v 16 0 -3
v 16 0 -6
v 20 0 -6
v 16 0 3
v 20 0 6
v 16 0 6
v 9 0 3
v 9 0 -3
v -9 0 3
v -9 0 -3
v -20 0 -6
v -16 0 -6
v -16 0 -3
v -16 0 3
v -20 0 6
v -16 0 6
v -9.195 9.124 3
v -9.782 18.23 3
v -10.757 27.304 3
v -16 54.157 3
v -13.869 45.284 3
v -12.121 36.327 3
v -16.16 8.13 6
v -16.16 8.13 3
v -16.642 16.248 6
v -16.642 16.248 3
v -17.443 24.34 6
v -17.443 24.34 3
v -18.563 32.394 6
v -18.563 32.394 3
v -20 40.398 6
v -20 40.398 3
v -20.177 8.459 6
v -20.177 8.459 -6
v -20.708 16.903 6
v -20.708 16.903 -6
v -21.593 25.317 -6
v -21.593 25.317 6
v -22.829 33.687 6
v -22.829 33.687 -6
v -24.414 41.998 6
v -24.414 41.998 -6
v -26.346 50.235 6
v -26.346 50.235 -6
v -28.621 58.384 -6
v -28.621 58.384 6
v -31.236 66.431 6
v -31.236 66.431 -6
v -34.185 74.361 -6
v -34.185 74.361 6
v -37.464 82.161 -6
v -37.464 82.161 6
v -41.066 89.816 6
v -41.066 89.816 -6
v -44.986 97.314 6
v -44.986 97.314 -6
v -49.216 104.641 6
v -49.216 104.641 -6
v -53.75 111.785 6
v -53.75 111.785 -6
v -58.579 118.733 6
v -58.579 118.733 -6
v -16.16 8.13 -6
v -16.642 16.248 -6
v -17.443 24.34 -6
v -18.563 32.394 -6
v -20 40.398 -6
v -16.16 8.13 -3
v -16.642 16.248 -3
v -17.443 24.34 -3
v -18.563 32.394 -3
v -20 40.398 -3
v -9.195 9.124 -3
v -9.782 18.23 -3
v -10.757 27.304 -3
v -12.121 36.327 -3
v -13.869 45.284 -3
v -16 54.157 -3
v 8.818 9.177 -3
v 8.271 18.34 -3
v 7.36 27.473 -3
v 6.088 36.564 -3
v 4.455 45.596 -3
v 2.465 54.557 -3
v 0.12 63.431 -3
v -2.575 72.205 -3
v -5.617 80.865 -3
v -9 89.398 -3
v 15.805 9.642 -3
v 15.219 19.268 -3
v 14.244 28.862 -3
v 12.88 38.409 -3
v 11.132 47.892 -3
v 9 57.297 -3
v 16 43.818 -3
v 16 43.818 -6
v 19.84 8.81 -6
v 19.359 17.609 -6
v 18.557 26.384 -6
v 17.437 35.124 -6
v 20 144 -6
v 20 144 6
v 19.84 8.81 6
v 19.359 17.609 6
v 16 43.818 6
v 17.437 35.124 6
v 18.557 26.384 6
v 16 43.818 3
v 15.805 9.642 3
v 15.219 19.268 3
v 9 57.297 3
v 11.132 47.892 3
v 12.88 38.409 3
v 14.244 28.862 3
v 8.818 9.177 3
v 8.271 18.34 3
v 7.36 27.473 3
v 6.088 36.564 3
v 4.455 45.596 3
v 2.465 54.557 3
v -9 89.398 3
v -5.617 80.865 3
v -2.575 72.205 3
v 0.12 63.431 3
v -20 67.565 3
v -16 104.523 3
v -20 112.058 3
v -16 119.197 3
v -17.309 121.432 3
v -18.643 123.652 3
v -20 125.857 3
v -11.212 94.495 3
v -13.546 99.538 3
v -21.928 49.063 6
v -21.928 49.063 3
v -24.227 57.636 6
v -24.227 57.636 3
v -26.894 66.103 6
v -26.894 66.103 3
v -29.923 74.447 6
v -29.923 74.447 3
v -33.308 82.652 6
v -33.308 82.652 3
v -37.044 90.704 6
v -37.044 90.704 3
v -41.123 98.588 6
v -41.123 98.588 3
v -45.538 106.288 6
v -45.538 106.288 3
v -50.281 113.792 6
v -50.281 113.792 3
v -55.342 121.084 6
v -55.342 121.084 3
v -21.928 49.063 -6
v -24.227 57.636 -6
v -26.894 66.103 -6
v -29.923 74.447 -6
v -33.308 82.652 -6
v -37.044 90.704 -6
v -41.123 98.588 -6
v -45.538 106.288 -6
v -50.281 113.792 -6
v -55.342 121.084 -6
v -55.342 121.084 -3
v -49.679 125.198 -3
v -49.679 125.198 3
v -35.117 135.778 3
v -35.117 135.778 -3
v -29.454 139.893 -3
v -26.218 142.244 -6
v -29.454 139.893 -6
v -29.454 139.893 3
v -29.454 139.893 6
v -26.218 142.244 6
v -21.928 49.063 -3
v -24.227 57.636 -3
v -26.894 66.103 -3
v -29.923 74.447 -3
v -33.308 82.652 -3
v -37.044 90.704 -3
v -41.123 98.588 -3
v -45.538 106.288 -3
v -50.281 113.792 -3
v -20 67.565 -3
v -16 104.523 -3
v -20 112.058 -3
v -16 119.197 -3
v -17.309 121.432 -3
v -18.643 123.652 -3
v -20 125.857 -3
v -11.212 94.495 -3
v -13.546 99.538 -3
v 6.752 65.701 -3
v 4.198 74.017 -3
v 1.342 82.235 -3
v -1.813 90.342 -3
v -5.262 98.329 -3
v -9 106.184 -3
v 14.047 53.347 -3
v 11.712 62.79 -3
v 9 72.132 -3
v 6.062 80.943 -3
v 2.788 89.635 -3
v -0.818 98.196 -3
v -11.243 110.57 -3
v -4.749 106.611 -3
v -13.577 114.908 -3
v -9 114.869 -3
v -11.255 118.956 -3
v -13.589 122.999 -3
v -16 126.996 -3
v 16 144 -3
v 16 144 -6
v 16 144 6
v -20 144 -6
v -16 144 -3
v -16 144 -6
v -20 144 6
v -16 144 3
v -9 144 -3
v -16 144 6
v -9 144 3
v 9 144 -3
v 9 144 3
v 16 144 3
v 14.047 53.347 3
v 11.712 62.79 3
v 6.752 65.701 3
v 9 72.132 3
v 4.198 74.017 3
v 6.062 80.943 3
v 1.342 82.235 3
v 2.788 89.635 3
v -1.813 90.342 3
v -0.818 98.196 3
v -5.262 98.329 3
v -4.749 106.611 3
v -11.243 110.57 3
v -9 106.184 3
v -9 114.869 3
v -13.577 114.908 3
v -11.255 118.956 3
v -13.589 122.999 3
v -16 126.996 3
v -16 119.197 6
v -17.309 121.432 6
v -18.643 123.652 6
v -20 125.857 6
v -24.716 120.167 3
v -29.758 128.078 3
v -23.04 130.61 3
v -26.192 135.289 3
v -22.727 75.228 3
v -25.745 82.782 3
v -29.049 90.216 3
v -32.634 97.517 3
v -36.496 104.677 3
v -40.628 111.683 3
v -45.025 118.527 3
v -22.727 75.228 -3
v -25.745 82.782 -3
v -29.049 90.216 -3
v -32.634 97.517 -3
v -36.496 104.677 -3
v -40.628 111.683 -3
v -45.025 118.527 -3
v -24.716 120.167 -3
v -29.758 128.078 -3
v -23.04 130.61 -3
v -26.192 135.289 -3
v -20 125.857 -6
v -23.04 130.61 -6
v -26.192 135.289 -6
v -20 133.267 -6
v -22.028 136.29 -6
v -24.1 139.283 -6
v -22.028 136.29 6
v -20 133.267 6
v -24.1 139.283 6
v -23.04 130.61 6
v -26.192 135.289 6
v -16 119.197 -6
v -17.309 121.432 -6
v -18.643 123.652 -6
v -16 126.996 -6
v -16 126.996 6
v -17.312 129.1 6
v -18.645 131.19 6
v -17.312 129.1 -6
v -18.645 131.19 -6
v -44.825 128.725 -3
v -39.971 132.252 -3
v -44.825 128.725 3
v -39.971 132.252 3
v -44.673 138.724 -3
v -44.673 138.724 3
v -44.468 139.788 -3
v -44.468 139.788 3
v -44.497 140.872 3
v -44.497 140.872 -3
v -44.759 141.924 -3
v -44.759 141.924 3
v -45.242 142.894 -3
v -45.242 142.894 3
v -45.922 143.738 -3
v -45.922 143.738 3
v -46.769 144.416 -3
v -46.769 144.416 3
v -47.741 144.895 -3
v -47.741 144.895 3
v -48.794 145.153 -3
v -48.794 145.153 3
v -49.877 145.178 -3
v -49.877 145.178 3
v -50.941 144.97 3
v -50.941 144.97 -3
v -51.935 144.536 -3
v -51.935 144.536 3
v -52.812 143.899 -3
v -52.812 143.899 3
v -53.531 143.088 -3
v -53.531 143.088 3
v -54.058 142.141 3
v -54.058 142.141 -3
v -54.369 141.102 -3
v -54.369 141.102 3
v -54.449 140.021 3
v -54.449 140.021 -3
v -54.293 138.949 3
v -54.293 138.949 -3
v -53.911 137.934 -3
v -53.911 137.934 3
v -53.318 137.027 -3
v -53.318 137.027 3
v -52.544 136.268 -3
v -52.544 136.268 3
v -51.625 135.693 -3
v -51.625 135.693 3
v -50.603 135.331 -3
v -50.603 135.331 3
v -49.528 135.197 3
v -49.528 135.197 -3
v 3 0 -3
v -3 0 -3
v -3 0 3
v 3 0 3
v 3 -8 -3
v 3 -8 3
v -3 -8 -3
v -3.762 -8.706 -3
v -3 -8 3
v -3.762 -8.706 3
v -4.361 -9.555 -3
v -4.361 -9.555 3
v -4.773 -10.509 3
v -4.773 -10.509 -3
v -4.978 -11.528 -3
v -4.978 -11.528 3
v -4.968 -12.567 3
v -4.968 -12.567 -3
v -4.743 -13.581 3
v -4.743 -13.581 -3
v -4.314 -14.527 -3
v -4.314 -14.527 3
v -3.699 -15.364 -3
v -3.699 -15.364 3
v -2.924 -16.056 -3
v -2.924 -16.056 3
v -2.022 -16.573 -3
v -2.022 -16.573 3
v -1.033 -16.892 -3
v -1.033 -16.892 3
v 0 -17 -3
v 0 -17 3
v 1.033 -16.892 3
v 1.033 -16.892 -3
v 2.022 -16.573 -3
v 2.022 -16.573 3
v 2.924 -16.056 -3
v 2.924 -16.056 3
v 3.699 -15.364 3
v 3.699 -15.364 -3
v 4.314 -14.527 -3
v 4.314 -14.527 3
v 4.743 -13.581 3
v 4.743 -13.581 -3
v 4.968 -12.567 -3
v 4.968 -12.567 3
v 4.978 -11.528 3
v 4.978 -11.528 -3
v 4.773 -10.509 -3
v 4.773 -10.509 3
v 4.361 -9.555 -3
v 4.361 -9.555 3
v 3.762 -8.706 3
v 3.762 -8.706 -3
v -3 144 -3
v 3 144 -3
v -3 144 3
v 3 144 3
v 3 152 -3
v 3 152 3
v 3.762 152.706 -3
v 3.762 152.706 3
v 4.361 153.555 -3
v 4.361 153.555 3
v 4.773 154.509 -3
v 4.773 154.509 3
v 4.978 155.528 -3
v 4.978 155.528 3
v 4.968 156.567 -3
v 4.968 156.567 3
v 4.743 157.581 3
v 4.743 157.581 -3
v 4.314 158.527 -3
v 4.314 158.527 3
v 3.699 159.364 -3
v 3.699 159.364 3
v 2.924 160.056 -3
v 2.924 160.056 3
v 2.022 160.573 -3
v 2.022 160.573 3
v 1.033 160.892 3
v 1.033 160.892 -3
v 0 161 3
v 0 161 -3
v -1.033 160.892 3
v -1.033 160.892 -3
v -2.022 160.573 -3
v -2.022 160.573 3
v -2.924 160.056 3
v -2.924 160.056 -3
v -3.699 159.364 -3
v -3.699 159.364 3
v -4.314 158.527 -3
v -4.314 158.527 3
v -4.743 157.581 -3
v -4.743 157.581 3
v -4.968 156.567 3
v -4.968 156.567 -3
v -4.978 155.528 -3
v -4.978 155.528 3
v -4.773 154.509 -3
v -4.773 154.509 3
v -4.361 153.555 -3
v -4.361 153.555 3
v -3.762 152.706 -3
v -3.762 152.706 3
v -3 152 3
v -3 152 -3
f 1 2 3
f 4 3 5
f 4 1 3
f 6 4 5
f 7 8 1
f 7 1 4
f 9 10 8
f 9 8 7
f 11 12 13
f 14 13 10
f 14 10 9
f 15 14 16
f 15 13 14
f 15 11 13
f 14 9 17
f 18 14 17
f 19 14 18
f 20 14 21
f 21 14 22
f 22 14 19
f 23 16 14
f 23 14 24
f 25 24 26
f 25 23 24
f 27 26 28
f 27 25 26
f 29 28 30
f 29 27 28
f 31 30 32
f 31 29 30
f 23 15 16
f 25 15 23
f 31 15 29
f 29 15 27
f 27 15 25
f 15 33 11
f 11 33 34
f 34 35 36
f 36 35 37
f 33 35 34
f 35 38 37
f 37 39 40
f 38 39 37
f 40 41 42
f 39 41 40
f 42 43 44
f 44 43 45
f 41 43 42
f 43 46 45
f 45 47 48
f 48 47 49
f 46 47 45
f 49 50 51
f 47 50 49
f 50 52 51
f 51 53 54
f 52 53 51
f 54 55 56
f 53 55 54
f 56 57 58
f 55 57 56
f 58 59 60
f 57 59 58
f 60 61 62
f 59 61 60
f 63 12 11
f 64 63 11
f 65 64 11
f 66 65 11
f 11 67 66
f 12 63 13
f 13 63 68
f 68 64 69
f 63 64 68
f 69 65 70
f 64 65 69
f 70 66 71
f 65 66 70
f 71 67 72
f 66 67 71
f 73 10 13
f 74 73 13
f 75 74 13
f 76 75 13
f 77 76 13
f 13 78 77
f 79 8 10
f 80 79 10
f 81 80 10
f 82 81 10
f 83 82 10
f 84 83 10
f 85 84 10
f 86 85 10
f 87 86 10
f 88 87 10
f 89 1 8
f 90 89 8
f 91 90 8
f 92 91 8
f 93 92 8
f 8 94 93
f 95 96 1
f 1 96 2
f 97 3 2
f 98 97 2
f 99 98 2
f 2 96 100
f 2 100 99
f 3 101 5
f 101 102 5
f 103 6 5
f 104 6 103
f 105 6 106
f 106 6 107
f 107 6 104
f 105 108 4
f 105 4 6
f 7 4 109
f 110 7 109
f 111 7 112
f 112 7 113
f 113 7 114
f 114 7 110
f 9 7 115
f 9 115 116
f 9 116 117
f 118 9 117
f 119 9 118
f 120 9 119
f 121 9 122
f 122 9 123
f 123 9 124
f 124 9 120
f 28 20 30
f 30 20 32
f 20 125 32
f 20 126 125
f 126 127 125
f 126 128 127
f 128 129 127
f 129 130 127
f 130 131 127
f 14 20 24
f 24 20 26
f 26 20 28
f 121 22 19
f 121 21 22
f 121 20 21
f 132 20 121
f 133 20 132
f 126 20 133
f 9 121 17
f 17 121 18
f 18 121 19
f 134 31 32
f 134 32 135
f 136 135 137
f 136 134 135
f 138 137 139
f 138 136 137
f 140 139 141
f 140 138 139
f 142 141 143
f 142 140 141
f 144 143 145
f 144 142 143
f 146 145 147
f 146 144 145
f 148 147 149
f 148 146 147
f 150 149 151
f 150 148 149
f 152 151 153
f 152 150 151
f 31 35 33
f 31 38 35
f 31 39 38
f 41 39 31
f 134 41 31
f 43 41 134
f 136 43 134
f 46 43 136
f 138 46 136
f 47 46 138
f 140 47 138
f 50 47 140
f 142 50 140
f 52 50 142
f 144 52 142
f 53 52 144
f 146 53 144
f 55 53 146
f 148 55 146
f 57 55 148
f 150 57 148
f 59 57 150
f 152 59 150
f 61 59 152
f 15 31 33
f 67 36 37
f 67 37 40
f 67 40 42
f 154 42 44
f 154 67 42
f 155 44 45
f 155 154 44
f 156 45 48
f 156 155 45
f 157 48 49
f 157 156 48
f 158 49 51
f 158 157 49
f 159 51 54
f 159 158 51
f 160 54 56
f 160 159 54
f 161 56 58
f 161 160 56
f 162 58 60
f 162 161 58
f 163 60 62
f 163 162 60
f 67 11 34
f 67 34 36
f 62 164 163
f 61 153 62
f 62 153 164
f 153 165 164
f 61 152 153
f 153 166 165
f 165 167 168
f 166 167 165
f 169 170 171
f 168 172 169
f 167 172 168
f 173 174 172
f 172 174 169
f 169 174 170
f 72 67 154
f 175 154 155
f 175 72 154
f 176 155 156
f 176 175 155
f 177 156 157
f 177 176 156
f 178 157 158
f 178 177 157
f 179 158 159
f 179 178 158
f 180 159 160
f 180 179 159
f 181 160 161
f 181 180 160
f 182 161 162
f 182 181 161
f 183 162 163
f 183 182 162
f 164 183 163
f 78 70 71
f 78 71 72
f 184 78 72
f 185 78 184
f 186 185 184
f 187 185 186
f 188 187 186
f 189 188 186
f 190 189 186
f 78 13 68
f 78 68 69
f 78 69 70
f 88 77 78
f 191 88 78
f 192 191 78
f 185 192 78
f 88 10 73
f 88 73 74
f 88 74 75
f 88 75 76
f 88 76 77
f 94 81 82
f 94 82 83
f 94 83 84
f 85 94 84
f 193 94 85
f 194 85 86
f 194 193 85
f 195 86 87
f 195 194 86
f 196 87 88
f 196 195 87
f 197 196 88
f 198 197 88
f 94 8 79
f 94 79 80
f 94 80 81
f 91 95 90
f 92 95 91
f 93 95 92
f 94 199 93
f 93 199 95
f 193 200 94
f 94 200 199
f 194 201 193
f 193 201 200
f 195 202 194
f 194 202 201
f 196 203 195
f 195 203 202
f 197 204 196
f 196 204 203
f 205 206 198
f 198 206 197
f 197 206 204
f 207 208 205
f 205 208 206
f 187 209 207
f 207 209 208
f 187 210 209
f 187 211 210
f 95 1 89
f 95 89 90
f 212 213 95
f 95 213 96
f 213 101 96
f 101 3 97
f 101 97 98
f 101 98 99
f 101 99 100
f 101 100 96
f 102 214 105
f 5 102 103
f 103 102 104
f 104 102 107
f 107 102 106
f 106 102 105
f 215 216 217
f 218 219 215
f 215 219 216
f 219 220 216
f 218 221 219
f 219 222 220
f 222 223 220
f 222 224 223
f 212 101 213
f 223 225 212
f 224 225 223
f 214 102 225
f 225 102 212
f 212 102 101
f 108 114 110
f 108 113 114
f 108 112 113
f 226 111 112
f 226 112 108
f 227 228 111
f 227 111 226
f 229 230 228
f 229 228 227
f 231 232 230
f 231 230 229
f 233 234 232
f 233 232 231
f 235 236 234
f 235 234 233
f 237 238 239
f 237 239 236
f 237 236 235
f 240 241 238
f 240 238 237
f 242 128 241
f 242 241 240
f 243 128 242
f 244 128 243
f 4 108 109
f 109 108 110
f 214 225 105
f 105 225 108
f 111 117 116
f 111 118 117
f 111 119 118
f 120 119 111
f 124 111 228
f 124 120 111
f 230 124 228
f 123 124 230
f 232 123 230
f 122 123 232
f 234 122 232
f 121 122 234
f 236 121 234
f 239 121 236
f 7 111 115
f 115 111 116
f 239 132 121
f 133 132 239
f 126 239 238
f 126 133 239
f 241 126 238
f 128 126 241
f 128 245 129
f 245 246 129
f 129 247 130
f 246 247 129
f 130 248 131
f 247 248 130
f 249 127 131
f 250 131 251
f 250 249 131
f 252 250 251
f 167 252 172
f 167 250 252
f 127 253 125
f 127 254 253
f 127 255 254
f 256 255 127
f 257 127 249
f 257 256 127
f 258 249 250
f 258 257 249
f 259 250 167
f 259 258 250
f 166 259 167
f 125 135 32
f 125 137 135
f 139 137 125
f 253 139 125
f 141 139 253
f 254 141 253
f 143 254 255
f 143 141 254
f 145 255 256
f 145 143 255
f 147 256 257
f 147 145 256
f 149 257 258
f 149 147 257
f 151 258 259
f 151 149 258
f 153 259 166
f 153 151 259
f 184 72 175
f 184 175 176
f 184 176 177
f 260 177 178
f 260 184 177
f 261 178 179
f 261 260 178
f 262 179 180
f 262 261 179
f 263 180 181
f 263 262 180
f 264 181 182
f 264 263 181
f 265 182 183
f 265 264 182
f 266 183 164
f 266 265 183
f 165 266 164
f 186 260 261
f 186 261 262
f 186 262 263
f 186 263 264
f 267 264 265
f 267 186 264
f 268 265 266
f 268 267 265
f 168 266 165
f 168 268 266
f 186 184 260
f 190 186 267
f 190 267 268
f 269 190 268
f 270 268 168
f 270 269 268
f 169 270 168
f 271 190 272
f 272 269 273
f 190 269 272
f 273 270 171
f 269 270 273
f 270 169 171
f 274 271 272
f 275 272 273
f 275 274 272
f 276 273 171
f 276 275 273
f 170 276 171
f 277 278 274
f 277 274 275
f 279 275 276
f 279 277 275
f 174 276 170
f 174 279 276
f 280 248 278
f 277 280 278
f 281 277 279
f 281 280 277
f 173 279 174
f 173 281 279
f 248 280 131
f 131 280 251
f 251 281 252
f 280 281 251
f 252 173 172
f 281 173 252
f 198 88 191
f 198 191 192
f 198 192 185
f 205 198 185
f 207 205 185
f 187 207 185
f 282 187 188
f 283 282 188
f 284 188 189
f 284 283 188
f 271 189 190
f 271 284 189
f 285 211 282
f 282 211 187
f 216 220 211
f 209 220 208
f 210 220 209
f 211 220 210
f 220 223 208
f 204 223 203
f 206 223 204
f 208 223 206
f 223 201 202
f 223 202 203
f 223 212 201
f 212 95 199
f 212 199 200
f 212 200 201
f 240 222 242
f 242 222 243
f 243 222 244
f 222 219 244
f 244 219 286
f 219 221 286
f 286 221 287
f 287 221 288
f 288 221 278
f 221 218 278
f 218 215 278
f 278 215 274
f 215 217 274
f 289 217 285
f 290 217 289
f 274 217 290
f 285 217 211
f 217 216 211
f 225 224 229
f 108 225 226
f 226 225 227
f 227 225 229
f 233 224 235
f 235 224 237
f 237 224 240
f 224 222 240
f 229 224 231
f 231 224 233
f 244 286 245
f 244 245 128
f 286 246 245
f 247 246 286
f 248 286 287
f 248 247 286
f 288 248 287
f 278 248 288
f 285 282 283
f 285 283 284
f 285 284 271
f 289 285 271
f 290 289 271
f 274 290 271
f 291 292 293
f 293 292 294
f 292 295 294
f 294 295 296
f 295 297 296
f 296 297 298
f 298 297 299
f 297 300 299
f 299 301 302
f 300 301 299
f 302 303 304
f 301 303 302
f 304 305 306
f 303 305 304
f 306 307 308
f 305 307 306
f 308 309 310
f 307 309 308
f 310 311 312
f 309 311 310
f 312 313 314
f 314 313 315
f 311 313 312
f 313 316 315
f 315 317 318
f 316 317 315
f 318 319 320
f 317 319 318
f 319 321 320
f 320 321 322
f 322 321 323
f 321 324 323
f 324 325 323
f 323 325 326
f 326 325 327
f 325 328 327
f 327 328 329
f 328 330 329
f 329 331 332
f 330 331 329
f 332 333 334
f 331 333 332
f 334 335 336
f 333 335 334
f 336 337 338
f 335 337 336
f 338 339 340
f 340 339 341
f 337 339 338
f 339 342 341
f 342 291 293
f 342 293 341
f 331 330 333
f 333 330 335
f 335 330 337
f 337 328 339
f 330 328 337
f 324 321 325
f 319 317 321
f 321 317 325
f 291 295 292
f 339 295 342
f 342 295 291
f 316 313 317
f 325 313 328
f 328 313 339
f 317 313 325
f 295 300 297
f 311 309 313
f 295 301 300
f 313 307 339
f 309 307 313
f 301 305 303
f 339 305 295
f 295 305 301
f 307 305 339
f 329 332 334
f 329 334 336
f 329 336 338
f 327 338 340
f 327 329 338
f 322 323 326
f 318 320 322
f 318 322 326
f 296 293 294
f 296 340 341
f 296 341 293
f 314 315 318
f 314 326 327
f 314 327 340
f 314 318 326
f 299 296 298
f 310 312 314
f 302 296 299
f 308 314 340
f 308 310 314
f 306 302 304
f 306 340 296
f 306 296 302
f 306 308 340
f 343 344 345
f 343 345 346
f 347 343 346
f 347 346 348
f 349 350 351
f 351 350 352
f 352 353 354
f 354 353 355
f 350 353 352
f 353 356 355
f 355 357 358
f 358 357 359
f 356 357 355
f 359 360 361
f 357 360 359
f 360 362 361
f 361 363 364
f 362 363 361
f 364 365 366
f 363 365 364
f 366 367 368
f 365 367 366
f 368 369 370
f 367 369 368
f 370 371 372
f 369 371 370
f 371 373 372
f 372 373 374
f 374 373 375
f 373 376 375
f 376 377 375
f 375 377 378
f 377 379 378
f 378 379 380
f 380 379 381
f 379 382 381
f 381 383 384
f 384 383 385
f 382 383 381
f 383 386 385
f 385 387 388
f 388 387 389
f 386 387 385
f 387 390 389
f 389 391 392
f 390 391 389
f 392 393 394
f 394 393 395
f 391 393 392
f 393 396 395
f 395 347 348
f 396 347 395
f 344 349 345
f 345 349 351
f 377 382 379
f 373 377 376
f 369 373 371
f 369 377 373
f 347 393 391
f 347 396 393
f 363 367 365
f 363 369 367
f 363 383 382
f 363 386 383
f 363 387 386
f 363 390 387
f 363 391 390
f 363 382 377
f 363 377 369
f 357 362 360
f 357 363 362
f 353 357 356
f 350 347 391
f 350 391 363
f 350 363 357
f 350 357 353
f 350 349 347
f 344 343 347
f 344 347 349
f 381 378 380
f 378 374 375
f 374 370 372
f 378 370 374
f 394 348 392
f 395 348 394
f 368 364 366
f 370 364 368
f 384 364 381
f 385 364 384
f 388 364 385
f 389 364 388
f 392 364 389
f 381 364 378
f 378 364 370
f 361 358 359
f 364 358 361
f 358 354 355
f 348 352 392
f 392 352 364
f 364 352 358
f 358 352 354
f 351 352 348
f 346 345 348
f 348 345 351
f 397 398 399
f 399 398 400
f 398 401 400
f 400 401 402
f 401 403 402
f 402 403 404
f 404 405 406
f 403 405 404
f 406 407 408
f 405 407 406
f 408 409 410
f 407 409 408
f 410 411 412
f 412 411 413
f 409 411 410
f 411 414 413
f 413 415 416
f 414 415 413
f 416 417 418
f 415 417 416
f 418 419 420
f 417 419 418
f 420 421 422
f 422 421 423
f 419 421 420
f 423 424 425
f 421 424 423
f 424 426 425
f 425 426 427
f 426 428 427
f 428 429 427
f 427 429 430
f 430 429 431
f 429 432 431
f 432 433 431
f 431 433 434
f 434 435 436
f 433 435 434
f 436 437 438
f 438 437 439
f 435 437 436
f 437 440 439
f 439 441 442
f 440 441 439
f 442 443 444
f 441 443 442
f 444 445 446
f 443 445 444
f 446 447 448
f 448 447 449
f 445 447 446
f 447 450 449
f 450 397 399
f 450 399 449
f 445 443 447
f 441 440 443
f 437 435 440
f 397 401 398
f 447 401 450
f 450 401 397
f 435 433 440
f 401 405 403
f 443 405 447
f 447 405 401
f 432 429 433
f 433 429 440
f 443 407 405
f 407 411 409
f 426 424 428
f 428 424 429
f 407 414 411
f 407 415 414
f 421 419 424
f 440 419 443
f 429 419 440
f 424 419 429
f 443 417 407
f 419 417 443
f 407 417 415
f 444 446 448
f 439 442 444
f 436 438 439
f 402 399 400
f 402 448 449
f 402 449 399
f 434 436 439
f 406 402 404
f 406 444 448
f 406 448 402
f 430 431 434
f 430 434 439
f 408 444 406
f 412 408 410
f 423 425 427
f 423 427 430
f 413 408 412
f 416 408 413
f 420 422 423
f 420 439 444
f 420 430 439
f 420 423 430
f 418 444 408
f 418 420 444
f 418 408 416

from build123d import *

# Parameters (mm, degrees)
SKETCH013_W  = 32
SKETCH013_H  = 3
PAD_DEPTH    = 3
PAD001_DEPTH = 3
PAD002_DEPTH = 3


with BuildPart() as body:
    # AdditivePipe: sweep along a path in Sketch002
    with BuildLine(Plane.XY) as additivepipe_path:
        ThreePointArc((0, 0), (-10.865453, 68.601773), (-42.398227, 130.488326))
    # Sketch → AdditivePipe (sweep)
    with BuildSketch(Plane.XZ):
        Polygon((-20, 6), (-20, -6), (-16, -6), (-16, -3), (-9, -3), (9, -3), (16, -3), (16, -6), (20, -6), (20, 6), (16, 6), (16, 3), (9, 3), (-9, 3), (-16, 3), (-16, 6), align=None)
    sweep(path=additivepipe_path.line)

    # AdditivePipe001: sweep along a path in Sketch001
    with BuildLine(Plane.XY) as additivepipe001_path:
        Line((0, 0), (0, 144))
    # Sketch → AdditivePipe001 (sweep)
    with BuildSketch(Plane.XZ):
        Polygon((-20, 6), (-20, -6), (-16, -6), (-16, -3), (-9, -3), (9, -3), (16, -3), (16, -6), (20, -6), (20, 6), (16, 6), (16, 3), (9, 3), (-9, 3), (-16, 3), (-16, 6), align=None)
    sweep(path=additivepipe001_path.line)

    # SubtractivePipe: sweep along a path in Sketch002
    with BuildLine(Plane.XY) as subtractivepipe_path:
        ThreePointArc((0, 0), (-10.865453, 68.601773), (-42.398227, 130.488326))
    # Sketch013 (on Face1 of AdditivePipe001) → SubtractivePipe (sweep, cut)
    with BuildSketch(Plane.XZ):
        with Locations((0, 4.5)):
            Rectangle(SKETCH013_W, SKETCH013_H)
    subtractivepipe = sweep(path=subtractivepipe_path.line, mode=Mode.SUBTRACT)

    # SubtractivePipe001: sweep along a path in Sketch001
    with BuildLine(Plane.XY) as subtractivepipe001_path:
        Line((0, 0), (0, 144))
    # Sketch013 (on Face1 of AdditivePipe001) → SubtractivePipe001 (sweep, cut)
    with BuildSketch(Plane.XZ):
        with Locations((0, 4.5)):
            Rectangle(SKETCH013_W, SKETCH013_H)
    subtractivepipe001 = sweep(path=subtractivepipe001_path.line, mode=Mode.SUBTRACT)

    # Mirrored: SubtractivePipe across XY
    add(subtractivepipe.mirror(Plane.XY), mode=Mode.SUBTRACT)

    # Mirrored001: SubtractivePipe001 across XY
    add(subtractivepipe001.mirror(Plane.XY), mode=Mode.SUBTRACT)


with BuildPart() as body001:
    # Sketch008 → Pad (new body, symmetric)
    with BuildSketch(Plane.XY):
        with BuildLine():
            Line((-3, 0), (3, 0))
            Line((3, 0), (3, -8))
            ThreePointArc((-3, -8), (0, -17), (3, -8))
            Line((-3, 0), (-3, -8))
        make_face()
    extrude(amount=PAD_DEPTH, both=True)


with BuildPart() as body002:
    # Sketch011 → Pad001 (new body, symmetric)
    with BuildSketch(Plane.XY):
        with BuildLine():
            Line((-3, 144), (3, 144))
            Line((3, 144), (3, 152))
            ThreePointArc((3, 152), (0, 161), (-3, 152))
            Line((-3, 144), (-3, 152))
        make_face()
    extrude(amount=PAD001_DEPTH, both=True)


with BuildPart() as body003:
    # Sketch012 → Pad002 (new body, symmetric)
    with BuildSketch(Plane.XY):
        with BuildLine():
            Line((-44.825278, 128.72497), (-39.971176, 132.251682))
            Line((-39.971176, 132.251682), (-44.673458, 138.723818))
            ThreePointArc((-44.673458, 138.723818), (-52.390577, 144.241615), (-49.52756, 135.197106))
            Line((-44.825278, 128.72497), (-49.52756, 135.197106))
        make_face()
    extrude(amount=PAD002_DEPTH, both=True)


solid = Compound([body.part, body001.part, body002.part, body003.part])
